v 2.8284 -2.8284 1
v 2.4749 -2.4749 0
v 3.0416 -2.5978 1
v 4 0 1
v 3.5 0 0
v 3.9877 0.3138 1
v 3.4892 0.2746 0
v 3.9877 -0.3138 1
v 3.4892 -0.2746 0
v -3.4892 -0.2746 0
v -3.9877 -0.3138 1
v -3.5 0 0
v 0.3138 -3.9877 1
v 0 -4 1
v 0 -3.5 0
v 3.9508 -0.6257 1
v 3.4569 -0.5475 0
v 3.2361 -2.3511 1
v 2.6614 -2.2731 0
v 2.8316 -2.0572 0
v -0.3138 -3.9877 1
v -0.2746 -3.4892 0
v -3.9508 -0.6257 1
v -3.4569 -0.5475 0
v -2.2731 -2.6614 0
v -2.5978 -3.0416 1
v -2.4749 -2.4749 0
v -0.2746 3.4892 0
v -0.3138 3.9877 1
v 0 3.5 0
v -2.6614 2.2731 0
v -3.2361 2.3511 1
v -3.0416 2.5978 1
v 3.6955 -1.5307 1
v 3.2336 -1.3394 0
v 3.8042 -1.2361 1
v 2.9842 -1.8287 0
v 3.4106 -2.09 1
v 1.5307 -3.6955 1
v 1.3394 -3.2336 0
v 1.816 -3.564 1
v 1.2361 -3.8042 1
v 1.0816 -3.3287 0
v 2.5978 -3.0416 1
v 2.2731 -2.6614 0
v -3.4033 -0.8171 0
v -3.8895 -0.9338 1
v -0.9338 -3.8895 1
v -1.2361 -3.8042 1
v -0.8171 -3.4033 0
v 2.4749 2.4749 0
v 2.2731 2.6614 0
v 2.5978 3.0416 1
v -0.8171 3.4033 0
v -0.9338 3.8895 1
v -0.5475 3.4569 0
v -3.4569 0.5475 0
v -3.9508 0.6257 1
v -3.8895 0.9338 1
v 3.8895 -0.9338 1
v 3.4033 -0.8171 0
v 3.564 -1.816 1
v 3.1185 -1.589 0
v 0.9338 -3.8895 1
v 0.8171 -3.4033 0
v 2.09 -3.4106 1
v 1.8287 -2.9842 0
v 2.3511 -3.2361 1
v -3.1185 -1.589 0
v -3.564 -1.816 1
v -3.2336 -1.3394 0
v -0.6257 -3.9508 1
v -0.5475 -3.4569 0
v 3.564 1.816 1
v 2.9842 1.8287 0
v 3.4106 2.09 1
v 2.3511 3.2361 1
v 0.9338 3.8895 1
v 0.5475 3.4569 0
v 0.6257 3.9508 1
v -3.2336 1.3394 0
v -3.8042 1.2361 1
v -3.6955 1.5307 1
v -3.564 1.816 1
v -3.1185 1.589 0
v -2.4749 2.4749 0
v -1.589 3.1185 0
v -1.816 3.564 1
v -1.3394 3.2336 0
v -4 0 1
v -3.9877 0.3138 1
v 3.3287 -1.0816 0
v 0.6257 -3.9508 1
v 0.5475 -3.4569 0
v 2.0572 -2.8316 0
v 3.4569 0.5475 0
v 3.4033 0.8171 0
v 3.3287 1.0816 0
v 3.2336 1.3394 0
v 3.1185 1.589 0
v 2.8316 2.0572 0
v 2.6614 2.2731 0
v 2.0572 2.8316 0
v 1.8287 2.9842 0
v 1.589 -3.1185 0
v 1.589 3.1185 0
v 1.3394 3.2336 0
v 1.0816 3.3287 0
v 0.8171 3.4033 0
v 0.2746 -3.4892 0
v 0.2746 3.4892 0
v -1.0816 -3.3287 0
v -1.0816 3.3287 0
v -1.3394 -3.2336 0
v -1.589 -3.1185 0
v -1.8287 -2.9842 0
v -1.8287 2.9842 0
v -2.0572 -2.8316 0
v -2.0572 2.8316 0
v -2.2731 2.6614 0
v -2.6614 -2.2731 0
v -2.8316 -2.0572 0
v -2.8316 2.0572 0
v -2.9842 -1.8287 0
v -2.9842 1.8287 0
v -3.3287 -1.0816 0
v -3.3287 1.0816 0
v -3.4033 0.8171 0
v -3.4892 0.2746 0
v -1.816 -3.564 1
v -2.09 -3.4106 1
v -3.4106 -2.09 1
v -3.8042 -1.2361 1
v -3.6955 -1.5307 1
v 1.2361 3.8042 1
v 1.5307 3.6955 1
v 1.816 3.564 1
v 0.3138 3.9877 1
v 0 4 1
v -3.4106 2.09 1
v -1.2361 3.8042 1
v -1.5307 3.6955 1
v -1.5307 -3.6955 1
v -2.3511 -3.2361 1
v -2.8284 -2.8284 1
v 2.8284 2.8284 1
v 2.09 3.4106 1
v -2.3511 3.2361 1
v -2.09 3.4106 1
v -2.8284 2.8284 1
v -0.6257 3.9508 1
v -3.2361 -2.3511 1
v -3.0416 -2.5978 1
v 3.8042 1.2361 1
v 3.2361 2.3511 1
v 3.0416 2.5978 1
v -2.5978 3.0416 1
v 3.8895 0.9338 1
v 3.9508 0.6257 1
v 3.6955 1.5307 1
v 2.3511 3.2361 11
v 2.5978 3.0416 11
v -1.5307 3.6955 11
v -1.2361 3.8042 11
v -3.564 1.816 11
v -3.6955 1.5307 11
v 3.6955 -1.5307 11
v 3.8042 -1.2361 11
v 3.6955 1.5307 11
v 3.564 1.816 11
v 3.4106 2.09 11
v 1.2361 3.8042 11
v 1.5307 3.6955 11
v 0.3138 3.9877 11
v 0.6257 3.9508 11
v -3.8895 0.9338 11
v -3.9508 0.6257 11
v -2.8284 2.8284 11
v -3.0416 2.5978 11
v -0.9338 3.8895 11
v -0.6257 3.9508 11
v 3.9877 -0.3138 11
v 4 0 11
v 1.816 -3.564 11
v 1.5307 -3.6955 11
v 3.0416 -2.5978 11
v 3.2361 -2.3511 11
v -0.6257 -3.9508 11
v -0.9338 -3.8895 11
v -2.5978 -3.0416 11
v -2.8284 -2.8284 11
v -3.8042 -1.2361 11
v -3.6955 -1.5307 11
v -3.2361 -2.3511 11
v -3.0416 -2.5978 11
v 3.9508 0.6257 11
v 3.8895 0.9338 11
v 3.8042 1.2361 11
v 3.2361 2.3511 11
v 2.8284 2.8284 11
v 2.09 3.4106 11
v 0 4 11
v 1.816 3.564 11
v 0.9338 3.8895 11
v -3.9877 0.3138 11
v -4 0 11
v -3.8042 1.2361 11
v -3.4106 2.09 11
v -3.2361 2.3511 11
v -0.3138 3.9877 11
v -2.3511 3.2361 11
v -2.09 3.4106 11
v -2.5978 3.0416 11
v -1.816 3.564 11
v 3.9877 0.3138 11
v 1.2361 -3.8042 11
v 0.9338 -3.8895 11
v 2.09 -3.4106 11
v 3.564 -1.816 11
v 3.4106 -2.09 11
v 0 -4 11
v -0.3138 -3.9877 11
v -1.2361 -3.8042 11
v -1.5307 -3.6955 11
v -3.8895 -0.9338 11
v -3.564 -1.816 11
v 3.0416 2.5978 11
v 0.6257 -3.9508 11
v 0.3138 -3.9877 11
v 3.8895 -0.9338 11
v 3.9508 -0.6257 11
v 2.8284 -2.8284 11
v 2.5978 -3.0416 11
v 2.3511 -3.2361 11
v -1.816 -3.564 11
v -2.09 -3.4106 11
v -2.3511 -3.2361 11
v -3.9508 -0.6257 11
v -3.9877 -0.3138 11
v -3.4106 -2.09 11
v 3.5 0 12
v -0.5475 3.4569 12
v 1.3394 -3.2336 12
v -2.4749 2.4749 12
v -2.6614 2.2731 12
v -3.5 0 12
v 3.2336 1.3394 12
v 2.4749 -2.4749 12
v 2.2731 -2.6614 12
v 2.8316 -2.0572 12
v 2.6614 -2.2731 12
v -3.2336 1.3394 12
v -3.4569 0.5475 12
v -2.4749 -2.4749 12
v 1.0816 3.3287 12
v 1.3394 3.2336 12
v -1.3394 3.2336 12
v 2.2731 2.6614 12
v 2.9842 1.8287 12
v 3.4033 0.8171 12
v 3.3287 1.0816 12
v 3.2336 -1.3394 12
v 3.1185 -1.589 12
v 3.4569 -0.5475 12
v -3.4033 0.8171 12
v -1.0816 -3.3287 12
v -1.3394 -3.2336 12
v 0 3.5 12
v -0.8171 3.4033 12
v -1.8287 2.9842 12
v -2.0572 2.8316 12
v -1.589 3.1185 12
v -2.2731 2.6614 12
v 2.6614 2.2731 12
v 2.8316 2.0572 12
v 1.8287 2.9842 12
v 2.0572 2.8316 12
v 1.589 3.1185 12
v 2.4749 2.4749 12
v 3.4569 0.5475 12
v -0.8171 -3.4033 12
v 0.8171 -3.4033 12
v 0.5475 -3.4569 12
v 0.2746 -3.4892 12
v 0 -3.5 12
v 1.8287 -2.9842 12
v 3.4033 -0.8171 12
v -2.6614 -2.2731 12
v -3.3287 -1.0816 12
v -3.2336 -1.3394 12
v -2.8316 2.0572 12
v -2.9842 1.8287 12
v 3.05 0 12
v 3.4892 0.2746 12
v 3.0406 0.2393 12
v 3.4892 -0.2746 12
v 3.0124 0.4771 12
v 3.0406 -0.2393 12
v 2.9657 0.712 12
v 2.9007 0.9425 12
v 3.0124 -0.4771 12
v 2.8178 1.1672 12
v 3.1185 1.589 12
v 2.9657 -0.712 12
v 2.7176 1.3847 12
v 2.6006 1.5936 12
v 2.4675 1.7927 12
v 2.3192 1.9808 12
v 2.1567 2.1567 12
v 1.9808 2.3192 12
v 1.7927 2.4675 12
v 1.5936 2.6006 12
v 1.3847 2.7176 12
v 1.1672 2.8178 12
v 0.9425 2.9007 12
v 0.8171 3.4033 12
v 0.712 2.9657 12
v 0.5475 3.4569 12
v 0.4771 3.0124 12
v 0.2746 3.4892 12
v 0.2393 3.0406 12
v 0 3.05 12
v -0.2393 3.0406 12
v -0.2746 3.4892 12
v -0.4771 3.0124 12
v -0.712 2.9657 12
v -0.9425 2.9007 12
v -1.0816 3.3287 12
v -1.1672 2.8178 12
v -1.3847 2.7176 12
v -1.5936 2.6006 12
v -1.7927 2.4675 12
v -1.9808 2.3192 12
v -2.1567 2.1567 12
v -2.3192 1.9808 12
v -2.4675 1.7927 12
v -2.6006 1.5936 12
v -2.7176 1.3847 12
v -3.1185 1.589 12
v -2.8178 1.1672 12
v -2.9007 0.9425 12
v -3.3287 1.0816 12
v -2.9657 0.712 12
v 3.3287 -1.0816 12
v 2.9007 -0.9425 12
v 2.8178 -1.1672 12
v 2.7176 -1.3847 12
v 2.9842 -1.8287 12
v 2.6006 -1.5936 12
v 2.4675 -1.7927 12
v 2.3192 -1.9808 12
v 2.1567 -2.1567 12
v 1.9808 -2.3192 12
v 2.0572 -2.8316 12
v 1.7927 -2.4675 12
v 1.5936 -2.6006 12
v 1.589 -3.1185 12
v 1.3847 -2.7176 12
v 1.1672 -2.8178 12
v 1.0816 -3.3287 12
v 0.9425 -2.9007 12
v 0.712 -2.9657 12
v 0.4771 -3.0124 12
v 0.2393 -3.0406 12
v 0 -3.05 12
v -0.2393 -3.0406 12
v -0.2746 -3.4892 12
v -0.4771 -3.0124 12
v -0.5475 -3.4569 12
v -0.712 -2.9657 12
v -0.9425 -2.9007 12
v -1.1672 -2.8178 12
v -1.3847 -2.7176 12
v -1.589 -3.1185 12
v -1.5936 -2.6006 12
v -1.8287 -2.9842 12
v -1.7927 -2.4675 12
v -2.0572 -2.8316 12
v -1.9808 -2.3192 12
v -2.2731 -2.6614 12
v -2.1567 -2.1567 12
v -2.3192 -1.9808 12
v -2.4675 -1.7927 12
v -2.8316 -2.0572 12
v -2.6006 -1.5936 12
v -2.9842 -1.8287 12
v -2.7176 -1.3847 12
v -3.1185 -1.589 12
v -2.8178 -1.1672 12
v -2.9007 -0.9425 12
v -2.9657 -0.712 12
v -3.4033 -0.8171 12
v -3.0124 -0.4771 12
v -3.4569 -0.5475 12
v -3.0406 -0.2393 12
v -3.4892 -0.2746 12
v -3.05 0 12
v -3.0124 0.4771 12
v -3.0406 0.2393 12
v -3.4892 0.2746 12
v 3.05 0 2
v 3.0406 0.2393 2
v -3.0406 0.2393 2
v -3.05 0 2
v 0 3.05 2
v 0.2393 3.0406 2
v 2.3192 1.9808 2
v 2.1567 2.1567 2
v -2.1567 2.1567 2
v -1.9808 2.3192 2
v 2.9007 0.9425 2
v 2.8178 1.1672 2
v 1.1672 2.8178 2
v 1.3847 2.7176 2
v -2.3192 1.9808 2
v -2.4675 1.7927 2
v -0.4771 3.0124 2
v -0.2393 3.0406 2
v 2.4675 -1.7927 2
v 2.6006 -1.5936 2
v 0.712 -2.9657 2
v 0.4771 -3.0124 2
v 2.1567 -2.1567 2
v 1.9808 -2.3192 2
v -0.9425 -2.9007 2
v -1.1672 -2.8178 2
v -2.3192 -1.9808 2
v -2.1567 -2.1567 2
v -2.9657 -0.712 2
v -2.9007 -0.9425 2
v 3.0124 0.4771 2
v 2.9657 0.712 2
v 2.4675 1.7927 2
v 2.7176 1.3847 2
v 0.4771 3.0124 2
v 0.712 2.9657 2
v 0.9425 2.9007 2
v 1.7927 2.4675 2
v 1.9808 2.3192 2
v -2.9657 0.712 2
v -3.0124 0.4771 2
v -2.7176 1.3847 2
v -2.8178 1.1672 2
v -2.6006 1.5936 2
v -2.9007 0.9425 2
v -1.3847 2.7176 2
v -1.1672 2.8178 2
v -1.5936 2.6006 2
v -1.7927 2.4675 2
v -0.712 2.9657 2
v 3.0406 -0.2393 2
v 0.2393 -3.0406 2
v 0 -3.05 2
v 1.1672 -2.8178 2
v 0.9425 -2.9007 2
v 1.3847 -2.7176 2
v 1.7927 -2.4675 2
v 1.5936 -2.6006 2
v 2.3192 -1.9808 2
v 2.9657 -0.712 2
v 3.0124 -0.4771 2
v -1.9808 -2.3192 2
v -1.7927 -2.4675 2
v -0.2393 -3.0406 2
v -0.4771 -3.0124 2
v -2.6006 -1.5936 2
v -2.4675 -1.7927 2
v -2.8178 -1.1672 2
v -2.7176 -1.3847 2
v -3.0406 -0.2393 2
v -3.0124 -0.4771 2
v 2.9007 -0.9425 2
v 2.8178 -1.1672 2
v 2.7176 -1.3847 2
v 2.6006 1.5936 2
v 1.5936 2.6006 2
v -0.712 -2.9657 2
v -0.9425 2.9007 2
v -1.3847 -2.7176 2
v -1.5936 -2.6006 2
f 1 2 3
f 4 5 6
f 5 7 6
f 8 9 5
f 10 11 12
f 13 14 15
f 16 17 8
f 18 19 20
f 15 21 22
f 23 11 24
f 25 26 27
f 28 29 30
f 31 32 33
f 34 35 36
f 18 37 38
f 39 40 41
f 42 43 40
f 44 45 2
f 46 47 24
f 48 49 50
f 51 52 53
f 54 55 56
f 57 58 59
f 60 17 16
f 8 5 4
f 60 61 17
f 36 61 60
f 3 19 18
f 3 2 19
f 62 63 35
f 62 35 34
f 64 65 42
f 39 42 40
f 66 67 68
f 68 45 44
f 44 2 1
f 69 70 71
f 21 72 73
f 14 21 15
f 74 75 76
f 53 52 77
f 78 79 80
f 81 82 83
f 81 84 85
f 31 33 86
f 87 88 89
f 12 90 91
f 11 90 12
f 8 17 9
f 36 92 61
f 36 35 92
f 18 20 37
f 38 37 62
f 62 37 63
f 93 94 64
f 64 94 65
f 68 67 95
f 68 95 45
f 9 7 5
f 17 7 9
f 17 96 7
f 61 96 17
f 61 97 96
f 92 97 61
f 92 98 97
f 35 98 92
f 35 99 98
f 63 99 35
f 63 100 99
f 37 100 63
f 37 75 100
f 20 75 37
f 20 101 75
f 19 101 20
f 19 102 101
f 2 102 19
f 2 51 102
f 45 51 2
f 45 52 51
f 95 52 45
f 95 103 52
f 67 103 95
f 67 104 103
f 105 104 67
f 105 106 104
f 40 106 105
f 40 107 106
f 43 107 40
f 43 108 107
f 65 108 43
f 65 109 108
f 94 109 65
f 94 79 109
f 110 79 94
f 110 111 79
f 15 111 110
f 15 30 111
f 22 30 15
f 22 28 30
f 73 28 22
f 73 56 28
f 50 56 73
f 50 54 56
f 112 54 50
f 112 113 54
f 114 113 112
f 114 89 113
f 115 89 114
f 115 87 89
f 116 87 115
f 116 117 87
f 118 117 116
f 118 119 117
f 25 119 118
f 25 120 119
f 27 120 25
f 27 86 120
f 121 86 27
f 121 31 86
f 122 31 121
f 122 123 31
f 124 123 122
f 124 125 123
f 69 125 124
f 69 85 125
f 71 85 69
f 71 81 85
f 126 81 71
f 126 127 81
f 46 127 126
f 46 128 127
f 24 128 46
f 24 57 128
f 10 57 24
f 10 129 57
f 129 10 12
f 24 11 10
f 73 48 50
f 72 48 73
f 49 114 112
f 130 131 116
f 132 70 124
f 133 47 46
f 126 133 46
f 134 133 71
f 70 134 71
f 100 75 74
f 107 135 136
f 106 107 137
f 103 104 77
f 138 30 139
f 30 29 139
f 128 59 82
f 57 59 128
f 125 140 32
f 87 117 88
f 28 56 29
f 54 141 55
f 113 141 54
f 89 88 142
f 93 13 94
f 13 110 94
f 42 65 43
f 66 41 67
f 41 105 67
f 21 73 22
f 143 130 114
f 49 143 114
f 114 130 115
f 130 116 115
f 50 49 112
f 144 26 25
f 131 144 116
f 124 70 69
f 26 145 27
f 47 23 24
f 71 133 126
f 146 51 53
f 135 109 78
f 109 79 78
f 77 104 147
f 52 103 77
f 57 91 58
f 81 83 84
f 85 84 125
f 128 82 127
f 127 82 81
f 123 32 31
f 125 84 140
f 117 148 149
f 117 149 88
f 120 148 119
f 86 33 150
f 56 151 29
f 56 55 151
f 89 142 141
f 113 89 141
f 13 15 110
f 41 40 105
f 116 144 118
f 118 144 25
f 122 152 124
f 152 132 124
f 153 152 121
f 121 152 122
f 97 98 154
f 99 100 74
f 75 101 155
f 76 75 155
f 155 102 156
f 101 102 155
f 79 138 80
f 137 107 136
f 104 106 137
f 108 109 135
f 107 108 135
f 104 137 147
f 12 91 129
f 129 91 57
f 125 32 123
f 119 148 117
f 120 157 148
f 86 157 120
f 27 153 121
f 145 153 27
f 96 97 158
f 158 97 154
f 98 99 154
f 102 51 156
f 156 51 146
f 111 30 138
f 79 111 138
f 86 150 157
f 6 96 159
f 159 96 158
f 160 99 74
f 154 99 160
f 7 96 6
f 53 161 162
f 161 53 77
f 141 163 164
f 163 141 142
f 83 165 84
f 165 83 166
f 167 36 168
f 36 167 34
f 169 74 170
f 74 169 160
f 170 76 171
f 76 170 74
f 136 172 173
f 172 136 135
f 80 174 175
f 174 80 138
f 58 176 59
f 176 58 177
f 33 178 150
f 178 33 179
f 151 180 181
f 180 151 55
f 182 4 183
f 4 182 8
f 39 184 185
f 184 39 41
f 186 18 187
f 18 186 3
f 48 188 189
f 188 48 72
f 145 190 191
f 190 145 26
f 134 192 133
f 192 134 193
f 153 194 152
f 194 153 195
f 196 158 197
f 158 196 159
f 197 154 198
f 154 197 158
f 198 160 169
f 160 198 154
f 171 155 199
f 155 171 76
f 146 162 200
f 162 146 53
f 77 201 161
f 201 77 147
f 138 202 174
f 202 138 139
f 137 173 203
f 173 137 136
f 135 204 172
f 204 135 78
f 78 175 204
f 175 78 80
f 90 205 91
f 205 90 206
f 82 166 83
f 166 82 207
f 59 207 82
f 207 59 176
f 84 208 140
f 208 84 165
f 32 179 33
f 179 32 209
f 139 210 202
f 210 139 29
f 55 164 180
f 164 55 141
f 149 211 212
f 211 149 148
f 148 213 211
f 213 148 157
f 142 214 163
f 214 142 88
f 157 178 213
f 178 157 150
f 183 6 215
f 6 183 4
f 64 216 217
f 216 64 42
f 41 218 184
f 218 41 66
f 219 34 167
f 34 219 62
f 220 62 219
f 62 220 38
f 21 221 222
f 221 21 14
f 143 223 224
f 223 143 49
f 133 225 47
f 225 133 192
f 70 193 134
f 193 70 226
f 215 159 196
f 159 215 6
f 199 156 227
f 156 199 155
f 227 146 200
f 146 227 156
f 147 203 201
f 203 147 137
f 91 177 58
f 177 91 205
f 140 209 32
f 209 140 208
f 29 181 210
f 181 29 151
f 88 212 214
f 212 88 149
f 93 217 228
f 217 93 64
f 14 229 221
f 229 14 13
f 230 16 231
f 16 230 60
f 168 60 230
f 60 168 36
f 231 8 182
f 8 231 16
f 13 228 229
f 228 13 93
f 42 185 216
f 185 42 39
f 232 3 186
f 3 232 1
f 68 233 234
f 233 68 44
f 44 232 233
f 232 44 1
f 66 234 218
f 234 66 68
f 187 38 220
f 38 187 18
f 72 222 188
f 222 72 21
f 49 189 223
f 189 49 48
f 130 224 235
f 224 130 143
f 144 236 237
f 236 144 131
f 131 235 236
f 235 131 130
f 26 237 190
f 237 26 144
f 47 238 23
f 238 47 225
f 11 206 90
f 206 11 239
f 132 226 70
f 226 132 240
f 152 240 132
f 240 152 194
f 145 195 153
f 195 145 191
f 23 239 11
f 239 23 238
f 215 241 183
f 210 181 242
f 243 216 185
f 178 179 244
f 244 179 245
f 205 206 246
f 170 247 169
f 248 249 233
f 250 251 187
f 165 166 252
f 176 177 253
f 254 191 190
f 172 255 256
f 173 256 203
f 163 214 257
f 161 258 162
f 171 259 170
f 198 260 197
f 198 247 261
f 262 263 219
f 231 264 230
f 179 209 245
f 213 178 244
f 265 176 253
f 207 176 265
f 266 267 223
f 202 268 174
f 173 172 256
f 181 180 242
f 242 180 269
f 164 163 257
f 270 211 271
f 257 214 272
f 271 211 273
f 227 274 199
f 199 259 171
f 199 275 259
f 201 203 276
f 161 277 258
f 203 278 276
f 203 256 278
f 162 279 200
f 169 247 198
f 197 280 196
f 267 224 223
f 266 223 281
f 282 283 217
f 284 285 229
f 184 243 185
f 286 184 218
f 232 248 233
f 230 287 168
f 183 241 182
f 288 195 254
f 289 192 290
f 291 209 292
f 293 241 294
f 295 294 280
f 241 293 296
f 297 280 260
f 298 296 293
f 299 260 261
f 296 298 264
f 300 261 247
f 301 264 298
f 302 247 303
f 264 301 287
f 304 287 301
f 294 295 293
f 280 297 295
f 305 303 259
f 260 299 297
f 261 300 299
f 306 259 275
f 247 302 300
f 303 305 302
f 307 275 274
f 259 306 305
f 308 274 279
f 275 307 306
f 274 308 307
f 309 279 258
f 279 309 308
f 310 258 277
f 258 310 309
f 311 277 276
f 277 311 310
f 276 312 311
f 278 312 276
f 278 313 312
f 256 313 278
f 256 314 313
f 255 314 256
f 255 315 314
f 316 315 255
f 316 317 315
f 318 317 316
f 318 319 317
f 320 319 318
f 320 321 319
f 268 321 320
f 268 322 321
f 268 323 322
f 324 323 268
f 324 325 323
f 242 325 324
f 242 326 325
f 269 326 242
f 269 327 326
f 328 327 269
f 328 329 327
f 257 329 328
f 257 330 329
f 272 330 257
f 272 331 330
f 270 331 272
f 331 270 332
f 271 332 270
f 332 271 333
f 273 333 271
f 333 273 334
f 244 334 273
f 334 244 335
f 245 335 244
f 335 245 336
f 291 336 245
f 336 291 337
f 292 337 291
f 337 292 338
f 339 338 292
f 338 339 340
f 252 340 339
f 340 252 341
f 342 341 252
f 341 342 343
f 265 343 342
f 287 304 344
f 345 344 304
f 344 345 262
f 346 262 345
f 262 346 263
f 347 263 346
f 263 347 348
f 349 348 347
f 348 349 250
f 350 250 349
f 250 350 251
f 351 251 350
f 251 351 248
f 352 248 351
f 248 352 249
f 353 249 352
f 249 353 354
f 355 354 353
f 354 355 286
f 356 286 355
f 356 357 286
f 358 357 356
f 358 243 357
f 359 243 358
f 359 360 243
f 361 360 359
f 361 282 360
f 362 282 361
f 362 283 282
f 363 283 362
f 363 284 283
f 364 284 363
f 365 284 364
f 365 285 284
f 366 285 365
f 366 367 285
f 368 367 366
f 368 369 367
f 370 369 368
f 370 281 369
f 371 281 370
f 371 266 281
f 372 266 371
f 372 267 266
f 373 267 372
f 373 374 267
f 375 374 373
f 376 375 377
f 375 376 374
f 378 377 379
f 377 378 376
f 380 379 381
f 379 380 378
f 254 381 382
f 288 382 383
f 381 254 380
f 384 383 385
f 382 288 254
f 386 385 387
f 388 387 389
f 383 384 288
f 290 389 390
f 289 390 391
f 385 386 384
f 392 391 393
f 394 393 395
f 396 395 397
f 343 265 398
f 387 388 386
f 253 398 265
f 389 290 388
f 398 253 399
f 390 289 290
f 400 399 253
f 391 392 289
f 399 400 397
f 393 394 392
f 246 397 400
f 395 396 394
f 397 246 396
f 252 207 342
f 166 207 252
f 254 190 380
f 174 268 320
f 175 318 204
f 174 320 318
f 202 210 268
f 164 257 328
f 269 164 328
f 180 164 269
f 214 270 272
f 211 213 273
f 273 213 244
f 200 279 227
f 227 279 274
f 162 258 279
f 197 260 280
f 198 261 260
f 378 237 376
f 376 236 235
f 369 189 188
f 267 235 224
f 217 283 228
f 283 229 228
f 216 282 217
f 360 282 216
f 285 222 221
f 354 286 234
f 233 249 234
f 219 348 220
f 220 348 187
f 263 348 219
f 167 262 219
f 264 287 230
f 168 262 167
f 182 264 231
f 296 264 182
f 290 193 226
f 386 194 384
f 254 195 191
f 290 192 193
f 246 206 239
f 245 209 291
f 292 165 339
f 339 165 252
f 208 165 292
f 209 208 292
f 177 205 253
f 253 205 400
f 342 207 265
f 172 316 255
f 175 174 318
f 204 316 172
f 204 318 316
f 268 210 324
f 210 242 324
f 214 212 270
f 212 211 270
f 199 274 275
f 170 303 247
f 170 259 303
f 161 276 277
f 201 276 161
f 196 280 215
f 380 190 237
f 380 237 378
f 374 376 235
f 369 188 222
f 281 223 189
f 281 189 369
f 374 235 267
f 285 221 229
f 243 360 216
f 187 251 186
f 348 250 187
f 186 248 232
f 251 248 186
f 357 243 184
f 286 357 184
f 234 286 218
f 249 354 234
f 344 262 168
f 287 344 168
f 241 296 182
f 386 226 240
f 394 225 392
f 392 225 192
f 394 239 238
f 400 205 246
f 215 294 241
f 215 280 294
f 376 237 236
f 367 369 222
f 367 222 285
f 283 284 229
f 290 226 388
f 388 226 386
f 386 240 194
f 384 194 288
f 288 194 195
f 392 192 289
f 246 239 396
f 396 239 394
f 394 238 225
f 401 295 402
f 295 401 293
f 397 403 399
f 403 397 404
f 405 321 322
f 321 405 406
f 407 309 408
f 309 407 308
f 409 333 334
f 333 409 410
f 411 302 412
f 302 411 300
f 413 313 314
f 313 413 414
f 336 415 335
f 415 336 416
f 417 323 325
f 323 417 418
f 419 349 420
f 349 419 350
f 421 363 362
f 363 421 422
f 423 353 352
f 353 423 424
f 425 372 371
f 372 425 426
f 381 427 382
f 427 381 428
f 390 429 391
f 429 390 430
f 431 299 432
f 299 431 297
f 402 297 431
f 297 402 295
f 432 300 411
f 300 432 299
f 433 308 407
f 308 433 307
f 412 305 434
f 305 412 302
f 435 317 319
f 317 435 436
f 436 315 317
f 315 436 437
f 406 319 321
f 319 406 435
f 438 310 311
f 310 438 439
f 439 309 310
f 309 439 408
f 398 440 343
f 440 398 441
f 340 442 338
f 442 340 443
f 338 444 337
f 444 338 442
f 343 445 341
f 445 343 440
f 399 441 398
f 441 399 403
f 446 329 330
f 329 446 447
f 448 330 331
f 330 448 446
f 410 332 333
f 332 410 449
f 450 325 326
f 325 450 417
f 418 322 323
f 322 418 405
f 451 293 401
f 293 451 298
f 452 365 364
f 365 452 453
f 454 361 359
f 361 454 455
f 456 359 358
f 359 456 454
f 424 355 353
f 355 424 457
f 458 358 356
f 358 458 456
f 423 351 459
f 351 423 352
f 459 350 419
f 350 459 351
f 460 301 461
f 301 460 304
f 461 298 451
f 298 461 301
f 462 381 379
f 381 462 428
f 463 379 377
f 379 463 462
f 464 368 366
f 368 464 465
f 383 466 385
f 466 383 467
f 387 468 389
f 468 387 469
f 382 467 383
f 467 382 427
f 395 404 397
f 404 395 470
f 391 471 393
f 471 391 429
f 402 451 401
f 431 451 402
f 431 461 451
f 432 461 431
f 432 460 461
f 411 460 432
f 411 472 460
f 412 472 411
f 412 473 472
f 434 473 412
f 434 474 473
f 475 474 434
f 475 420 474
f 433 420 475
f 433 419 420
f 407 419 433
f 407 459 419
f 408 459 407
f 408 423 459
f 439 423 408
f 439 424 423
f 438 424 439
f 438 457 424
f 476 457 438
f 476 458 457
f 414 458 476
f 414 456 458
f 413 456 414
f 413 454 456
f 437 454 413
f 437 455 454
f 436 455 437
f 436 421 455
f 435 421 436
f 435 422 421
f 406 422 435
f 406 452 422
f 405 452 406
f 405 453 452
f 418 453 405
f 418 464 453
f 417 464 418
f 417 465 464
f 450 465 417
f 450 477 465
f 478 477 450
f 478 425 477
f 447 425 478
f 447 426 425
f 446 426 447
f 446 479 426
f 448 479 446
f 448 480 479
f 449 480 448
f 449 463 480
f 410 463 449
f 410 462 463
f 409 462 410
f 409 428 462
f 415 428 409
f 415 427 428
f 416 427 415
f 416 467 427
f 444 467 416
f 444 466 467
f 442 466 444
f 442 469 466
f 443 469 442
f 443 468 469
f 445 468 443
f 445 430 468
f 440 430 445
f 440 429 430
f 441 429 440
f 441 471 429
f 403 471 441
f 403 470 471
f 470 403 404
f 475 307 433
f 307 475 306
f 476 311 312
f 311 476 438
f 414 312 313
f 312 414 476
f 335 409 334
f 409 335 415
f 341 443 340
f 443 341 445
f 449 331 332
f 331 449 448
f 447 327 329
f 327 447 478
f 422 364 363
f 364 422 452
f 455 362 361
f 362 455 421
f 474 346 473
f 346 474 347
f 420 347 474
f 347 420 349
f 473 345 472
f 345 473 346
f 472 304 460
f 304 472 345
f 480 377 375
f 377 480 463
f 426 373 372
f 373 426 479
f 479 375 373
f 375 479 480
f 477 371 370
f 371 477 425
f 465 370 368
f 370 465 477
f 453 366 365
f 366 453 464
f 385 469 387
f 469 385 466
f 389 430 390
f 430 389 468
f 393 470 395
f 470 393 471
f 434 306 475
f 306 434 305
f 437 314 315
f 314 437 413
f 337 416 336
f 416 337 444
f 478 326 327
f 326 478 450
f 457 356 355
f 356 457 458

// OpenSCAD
$fn=80;
difference(){
    union() {
        cylinder(h=1, d1=7, d2=8);
        translate([0,0,1])cylinder(h=10, d=8);
        translate([0,0,11])cylinder(h=1, d1=8, d2=7);
    }
    translate([0,0,2])cylinder(h=10, d=6.1);
}
